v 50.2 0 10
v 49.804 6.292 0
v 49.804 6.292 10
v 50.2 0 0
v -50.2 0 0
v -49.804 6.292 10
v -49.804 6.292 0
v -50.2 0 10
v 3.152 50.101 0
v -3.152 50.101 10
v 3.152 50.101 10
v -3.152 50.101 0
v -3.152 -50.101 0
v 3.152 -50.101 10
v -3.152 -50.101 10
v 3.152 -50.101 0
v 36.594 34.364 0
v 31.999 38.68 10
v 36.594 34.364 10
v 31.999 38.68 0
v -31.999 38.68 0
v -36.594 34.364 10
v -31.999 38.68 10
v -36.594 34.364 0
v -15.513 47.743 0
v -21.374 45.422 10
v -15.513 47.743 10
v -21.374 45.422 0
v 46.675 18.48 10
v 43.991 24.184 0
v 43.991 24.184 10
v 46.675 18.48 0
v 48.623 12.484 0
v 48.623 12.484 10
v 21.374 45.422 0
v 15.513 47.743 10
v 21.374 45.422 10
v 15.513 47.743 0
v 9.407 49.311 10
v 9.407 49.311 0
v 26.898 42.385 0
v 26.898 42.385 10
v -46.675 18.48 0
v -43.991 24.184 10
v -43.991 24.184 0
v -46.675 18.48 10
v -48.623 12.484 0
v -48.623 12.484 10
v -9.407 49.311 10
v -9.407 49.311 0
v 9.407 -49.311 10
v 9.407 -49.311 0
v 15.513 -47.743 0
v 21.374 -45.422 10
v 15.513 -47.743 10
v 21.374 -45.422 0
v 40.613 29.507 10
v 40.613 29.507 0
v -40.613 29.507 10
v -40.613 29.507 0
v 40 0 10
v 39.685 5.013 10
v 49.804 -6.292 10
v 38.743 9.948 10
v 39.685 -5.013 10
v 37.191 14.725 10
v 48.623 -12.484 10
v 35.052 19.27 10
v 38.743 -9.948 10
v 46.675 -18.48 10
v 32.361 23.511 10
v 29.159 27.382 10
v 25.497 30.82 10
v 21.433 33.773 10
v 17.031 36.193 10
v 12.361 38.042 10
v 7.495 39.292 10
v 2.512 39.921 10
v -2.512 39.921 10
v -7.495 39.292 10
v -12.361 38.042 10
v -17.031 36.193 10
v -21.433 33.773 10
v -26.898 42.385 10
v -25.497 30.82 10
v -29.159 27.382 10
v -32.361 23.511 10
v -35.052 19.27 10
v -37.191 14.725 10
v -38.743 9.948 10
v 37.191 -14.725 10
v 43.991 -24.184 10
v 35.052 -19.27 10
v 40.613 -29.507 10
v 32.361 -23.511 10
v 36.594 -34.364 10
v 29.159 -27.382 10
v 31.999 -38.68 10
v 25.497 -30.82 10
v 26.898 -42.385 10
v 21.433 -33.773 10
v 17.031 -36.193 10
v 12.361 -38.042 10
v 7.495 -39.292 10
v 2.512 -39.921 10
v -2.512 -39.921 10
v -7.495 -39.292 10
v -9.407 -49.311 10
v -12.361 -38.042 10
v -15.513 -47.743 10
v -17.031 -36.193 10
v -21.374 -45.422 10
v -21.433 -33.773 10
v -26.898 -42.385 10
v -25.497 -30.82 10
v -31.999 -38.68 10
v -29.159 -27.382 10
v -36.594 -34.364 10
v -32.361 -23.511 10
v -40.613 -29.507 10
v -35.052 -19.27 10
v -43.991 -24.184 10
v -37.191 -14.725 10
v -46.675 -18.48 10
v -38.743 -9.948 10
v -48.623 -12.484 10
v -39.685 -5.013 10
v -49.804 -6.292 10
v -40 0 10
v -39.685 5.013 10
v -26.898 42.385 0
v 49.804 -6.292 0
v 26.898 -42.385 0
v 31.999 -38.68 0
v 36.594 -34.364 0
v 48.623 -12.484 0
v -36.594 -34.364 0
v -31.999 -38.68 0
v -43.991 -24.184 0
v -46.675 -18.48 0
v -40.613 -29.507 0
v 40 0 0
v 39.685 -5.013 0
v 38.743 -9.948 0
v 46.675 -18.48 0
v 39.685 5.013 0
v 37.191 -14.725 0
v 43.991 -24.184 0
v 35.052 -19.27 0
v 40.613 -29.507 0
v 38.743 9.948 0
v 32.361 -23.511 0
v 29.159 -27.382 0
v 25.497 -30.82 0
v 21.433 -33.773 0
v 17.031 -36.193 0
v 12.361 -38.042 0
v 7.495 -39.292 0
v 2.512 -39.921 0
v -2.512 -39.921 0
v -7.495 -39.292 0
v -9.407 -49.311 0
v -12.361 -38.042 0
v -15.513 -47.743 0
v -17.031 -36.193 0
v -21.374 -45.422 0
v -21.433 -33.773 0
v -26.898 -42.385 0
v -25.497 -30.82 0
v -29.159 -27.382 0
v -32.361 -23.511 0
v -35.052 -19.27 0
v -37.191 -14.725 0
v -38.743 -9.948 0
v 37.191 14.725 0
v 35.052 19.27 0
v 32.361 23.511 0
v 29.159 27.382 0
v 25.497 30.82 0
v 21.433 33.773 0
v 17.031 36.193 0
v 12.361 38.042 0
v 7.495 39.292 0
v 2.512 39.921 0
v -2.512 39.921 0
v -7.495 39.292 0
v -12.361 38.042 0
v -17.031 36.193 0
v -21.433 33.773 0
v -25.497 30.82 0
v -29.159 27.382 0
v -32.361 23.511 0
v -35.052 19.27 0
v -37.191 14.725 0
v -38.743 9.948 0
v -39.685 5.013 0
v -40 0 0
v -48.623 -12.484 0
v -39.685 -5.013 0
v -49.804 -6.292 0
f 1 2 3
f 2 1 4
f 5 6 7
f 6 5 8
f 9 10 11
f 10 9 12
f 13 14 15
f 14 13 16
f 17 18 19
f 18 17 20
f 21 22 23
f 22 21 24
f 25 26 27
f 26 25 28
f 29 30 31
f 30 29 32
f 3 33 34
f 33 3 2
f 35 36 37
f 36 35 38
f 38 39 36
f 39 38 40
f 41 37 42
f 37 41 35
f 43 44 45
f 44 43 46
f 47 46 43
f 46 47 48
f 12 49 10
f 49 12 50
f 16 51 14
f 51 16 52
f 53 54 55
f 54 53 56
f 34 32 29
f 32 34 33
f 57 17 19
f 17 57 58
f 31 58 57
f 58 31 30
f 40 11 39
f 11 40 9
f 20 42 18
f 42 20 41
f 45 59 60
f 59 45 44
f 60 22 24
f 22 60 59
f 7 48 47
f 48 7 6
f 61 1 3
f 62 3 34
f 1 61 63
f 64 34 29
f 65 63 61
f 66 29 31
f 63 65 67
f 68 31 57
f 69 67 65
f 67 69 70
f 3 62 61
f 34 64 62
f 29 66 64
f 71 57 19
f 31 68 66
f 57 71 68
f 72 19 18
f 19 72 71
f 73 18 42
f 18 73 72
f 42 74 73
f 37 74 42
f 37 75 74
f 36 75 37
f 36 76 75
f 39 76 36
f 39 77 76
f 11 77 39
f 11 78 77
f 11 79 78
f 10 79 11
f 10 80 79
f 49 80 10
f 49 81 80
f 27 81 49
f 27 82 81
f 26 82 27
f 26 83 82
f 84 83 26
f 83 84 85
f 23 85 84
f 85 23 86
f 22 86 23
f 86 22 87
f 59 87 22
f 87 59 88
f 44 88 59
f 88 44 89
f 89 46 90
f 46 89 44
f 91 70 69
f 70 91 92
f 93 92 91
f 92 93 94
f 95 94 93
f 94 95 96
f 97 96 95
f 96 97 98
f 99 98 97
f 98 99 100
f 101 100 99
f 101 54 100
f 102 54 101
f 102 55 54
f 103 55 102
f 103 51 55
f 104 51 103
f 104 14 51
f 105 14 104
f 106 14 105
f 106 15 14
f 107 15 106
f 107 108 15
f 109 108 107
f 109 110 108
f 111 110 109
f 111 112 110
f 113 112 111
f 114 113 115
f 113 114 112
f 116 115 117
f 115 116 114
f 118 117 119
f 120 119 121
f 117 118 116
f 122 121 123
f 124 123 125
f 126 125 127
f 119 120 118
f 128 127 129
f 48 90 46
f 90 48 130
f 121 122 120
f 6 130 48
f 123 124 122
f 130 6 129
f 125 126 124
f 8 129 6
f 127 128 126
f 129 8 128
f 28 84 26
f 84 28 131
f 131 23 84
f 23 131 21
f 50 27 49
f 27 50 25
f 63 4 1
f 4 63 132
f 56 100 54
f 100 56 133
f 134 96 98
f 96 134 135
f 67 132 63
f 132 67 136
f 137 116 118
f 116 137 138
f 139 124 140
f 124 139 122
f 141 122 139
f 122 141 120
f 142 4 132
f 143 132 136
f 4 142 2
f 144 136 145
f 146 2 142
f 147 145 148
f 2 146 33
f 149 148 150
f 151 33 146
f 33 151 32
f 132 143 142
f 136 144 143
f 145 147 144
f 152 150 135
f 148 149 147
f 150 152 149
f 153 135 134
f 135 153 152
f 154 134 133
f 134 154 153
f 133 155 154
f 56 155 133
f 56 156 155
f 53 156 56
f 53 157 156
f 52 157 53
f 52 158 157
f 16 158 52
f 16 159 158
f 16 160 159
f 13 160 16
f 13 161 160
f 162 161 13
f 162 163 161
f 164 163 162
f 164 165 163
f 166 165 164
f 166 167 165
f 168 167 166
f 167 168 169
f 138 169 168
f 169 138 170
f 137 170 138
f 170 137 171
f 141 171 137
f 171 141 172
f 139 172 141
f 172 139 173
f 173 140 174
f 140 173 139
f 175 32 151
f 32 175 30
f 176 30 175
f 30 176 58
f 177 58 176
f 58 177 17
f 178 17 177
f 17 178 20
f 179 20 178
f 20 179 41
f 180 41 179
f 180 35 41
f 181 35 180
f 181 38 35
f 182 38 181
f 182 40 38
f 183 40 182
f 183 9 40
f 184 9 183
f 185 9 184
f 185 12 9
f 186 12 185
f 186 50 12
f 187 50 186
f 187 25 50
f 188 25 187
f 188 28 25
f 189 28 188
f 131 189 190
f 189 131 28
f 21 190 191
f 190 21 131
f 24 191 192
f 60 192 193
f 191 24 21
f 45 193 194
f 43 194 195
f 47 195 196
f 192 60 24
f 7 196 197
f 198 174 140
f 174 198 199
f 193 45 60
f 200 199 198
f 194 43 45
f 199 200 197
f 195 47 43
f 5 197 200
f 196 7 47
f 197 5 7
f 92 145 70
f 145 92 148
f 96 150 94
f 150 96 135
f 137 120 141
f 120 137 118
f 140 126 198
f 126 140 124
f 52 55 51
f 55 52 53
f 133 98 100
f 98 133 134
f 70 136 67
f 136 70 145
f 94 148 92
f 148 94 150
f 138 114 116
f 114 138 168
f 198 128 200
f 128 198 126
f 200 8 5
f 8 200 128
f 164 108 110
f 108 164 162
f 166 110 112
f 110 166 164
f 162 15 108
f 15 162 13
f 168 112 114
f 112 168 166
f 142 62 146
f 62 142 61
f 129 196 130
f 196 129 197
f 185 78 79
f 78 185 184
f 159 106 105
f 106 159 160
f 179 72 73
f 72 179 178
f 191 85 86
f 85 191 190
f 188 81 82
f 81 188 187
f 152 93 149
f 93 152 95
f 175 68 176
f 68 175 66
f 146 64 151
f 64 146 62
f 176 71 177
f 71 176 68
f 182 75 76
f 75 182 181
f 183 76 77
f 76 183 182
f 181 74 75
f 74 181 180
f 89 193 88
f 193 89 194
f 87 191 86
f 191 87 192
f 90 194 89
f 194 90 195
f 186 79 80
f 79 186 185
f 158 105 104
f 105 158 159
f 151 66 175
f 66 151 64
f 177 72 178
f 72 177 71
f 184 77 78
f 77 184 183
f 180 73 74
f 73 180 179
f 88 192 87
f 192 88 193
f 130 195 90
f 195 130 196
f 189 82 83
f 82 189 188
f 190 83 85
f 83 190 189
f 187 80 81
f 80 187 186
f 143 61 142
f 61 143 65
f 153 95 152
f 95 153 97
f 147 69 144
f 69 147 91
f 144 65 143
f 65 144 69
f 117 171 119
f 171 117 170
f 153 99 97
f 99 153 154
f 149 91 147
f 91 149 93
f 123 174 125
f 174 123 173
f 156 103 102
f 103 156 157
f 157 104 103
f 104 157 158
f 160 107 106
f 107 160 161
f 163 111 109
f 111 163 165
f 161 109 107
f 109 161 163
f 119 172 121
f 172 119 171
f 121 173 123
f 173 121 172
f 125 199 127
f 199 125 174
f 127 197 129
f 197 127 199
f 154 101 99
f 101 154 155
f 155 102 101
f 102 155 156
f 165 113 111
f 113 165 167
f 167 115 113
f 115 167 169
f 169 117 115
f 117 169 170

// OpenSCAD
$fn = 50;


difference() {
	union() {
		translate(v = [0, 0, 0]) {
			rotate(a = [0, 0, 0]) {
				cylinder(h = 10, r = 50.2000000000);
			}
		}
	}
	union() {
		translate(v = [0, 0, 0]) {
			rotate(a = [0, 0, 0]) {
				cylinder(h = 10, r = 40.0000000000);
			}
		}
	}
}
